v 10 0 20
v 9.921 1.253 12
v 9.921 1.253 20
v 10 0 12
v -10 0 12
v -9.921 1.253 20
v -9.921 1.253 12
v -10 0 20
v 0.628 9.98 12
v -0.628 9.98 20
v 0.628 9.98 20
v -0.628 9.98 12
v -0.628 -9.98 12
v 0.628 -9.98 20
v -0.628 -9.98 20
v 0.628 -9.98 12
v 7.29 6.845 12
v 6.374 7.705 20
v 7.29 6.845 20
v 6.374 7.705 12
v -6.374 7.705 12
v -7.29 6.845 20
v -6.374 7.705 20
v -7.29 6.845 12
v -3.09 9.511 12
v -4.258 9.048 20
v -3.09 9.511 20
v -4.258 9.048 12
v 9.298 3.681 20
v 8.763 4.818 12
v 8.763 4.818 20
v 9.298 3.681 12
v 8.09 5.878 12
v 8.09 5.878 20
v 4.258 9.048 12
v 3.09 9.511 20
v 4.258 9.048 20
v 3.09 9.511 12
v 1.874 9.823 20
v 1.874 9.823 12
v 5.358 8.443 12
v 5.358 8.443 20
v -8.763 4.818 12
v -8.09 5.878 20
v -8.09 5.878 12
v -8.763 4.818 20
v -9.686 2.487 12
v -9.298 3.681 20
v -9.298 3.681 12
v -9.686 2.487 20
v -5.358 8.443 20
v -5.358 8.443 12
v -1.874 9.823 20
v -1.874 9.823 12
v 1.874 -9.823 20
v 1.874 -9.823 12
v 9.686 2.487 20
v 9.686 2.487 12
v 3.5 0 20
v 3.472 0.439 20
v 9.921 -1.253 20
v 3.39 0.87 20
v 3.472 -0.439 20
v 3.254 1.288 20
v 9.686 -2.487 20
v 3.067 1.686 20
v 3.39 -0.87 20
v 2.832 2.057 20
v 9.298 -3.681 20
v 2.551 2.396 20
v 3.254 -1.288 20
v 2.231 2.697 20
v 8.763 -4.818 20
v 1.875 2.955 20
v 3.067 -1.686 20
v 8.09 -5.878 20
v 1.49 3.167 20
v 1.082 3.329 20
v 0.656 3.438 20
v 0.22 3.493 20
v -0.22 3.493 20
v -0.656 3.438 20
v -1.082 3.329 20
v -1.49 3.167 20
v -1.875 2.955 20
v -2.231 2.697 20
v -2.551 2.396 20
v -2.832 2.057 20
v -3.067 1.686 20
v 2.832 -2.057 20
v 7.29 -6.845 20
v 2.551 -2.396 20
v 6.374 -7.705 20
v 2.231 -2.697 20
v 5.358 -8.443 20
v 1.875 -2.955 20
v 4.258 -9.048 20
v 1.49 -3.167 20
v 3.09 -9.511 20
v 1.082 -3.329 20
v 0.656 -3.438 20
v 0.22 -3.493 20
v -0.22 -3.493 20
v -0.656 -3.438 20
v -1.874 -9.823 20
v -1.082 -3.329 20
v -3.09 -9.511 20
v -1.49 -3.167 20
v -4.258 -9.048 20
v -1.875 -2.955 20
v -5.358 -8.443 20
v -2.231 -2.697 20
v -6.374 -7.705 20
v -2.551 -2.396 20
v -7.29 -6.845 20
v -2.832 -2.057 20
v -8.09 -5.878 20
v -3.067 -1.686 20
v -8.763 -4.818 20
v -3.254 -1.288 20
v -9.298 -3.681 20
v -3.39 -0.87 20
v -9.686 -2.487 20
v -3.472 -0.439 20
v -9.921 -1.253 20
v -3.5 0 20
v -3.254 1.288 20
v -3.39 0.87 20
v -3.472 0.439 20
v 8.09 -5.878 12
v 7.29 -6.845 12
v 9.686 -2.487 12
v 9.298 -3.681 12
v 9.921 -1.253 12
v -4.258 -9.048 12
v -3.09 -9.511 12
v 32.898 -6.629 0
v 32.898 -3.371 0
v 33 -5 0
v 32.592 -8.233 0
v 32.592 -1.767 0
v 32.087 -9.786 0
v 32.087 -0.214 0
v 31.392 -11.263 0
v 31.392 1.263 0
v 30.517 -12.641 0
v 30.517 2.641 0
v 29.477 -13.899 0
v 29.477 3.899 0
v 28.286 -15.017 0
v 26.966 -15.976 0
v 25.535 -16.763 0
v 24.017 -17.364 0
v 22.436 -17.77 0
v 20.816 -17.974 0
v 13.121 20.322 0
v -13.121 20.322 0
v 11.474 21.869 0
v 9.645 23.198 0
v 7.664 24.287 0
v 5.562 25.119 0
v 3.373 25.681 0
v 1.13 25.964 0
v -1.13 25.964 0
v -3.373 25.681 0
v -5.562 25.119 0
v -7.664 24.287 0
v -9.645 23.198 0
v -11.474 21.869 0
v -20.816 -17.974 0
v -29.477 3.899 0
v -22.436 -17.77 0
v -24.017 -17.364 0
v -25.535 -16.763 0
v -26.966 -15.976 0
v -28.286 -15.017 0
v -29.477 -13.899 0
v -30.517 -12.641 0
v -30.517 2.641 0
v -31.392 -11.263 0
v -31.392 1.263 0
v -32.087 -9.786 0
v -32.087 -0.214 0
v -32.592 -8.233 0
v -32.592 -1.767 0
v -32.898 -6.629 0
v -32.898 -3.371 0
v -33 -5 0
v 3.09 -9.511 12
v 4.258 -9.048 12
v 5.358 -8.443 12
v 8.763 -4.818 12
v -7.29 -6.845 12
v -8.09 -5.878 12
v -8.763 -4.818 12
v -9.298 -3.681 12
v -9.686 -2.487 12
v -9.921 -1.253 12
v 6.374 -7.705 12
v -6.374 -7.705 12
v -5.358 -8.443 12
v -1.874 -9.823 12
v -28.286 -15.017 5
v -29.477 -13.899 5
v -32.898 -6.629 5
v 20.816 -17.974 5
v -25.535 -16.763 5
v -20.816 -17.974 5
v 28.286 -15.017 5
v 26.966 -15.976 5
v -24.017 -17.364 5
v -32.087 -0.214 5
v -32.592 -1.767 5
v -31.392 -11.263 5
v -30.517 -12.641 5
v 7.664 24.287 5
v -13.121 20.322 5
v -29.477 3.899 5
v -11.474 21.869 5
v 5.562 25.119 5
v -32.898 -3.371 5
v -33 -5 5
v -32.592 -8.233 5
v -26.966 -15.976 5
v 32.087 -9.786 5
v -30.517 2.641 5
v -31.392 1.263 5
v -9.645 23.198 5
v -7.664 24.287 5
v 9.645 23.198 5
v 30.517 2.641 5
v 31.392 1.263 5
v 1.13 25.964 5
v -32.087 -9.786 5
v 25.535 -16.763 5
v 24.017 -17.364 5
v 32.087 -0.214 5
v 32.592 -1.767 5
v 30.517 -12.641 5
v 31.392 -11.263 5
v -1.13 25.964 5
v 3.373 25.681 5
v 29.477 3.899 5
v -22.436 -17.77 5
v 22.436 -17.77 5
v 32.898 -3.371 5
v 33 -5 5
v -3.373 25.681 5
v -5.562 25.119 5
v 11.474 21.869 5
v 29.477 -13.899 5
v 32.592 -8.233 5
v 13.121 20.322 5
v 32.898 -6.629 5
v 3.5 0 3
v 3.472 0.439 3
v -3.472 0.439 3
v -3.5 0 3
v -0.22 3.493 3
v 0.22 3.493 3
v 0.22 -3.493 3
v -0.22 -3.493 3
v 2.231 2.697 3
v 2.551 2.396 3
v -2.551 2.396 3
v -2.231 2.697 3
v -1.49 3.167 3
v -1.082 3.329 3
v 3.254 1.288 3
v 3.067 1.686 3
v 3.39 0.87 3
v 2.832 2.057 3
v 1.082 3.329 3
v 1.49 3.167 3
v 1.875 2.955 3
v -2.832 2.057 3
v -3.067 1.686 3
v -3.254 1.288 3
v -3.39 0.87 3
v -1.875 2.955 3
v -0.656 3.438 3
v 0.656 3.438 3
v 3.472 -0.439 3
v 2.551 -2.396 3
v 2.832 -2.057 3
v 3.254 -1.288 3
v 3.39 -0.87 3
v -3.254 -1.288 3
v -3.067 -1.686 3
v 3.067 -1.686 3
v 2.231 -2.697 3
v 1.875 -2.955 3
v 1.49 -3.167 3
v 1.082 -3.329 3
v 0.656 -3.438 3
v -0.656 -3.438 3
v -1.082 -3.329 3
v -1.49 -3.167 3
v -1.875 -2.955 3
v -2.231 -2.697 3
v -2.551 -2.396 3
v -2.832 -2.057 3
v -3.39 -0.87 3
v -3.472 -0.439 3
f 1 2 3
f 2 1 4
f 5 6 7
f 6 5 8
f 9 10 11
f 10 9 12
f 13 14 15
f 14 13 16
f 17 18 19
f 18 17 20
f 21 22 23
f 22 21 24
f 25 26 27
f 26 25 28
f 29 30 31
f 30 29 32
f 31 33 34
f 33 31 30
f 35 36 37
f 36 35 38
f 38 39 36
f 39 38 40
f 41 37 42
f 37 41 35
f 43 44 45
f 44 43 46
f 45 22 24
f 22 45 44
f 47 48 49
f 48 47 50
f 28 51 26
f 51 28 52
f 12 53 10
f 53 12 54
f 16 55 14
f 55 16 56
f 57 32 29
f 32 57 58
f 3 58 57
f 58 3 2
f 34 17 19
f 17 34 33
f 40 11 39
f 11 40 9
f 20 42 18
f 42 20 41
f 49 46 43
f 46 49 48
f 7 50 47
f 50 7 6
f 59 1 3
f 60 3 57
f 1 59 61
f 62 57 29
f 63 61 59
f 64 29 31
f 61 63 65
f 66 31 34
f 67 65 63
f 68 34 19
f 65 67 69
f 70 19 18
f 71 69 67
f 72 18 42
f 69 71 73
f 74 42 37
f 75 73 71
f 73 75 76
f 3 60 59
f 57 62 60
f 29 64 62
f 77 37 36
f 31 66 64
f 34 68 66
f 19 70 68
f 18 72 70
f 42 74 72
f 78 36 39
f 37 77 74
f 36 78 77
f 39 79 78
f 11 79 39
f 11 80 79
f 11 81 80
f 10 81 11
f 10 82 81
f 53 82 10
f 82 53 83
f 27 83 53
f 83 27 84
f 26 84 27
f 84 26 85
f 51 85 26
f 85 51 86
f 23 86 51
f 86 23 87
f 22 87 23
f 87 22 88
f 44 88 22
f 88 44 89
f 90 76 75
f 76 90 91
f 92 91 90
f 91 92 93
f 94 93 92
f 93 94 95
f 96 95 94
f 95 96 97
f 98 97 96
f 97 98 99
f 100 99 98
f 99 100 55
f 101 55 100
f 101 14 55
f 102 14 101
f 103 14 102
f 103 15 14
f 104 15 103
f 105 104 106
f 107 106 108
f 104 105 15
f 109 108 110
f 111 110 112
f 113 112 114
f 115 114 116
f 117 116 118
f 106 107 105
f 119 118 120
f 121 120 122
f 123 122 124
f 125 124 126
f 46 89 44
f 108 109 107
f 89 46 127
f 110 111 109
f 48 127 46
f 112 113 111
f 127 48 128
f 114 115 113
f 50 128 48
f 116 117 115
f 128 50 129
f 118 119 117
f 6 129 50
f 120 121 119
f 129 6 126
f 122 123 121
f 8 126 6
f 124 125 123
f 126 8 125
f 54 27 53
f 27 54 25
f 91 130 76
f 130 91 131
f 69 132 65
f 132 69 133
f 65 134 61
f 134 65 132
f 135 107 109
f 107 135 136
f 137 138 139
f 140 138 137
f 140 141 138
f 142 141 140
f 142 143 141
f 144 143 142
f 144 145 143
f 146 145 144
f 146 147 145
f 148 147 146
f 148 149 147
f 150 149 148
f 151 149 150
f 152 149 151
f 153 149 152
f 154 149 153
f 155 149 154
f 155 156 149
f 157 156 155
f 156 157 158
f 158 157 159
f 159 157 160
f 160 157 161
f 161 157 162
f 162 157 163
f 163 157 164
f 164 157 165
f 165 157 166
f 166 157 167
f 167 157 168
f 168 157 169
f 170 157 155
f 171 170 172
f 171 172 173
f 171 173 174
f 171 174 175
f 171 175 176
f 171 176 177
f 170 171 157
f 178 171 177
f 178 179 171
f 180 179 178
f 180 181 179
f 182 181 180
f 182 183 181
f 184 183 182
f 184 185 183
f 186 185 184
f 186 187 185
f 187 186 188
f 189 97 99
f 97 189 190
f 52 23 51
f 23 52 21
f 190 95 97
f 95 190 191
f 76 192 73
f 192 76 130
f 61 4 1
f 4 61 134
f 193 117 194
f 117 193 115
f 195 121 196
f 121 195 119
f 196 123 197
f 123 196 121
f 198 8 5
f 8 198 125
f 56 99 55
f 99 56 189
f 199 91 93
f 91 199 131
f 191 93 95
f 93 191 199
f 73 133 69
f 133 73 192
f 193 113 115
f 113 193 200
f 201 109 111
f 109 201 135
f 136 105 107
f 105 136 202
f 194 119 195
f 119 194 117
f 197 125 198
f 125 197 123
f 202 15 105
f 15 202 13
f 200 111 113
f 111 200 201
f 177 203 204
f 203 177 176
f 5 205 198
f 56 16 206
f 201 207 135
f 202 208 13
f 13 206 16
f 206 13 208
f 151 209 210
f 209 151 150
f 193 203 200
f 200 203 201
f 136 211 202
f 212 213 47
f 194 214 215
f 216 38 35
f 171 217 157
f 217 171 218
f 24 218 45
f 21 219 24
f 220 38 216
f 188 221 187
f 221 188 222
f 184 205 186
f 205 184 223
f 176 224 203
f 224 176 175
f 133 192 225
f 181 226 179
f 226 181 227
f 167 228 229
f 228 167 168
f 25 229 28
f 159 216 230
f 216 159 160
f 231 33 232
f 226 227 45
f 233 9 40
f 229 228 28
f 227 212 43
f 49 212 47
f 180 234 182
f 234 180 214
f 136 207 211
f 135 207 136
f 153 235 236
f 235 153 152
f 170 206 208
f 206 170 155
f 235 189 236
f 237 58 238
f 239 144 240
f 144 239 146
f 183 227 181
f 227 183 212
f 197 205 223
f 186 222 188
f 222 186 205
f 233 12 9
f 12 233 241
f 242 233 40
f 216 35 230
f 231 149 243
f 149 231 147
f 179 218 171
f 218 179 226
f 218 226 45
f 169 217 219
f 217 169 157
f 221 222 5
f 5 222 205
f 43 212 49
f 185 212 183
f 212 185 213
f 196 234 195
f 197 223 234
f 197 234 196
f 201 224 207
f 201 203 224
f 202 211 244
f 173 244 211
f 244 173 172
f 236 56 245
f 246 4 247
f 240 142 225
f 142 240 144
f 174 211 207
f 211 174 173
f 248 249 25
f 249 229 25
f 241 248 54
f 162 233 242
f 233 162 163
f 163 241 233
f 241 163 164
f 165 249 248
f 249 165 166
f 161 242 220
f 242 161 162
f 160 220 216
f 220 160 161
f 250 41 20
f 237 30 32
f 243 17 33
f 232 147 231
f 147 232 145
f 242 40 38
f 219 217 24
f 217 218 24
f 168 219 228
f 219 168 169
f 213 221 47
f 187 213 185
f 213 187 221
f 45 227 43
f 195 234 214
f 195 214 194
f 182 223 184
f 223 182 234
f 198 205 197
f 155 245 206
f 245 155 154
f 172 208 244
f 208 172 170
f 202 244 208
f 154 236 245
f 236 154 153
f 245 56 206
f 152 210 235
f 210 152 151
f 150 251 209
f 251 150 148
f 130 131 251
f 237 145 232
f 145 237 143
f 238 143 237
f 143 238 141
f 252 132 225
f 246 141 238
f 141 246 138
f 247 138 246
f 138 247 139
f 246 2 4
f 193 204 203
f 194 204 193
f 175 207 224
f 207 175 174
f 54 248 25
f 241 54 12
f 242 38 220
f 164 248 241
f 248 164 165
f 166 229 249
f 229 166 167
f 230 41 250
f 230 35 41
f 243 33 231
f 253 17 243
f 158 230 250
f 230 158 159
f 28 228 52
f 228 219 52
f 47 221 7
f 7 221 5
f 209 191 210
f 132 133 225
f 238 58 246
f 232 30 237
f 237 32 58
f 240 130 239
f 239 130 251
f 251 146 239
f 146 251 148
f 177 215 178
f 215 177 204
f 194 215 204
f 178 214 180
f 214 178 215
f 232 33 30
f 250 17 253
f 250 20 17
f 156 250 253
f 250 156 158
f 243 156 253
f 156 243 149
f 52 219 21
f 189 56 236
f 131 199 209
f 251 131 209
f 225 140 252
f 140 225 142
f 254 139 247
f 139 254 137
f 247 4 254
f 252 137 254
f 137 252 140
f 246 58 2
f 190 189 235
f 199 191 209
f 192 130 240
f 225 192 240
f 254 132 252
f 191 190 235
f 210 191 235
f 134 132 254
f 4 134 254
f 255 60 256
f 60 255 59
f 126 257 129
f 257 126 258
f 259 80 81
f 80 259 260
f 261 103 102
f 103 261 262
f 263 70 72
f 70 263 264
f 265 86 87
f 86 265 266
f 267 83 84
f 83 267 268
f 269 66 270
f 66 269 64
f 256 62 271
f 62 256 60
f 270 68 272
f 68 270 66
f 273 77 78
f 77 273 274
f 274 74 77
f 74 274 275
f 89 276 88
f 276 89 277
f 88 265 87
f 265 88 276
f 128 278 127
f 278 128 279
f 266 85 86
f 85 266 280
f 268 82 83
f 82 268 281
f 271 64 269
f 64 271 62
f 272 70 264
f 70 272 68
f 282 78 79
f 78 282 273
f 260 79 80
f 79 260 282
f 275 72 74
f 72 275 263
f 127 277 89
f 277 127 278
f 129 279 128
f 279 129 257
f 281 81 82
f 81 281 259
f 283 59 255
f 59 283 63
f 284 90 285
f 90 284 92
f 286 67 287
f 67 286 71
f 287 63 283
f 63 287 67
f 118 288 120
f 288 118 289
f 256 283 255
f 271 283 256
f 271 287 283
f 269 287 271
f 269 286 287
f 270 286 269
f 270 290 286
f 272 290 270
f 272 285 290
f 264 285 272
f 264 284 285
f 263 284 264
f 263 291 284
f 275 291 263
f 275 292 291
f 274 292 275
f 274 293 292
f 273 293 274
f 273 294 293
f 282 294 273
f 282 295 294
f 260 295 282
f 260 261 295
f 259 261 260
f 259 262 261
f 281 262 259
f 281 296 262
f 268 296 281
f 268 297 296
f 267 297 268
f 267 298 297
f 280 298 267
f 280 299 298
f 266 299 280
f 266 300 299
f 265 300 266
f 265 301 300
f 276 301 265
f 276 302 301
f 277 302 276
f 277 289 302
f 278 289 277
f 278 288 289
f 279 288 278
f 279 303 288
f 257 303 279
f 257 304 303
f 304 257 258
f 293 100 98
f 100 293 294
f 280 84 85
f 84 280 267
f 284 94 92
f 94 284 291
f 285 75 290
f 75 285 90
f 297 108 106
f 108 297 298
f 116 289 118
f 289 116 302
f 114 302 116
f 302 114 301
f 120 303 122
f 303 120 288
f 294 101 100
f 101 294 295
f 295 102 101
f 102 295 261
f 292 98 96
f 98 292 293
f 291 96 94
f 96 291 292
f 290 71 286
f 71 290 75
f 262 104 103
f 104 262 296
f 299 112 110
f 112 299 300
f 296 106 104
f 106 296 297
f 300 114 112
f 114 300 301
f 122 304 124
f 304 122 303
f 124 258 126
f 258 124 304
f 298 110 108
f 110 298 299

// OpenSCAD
$fn = 50;

difference() {
   union() {
      cylinder(r=10,h=20);
      hull() {
         cylinder(r=10,h=12);
         form();
      }
   }
   translate([0,0,3]) cylinder(d=7,h=30);
}


module form() {
   hull() {
      translate([-20,-5,0]) linear_extrude(height=5) circle(r=13);
      translate([20,-5,0]) linear_extrude(height=5) circle(r=13);
      translate([0,8,0]) linear_extrude(height=5) circle(r=18);
   }
}
